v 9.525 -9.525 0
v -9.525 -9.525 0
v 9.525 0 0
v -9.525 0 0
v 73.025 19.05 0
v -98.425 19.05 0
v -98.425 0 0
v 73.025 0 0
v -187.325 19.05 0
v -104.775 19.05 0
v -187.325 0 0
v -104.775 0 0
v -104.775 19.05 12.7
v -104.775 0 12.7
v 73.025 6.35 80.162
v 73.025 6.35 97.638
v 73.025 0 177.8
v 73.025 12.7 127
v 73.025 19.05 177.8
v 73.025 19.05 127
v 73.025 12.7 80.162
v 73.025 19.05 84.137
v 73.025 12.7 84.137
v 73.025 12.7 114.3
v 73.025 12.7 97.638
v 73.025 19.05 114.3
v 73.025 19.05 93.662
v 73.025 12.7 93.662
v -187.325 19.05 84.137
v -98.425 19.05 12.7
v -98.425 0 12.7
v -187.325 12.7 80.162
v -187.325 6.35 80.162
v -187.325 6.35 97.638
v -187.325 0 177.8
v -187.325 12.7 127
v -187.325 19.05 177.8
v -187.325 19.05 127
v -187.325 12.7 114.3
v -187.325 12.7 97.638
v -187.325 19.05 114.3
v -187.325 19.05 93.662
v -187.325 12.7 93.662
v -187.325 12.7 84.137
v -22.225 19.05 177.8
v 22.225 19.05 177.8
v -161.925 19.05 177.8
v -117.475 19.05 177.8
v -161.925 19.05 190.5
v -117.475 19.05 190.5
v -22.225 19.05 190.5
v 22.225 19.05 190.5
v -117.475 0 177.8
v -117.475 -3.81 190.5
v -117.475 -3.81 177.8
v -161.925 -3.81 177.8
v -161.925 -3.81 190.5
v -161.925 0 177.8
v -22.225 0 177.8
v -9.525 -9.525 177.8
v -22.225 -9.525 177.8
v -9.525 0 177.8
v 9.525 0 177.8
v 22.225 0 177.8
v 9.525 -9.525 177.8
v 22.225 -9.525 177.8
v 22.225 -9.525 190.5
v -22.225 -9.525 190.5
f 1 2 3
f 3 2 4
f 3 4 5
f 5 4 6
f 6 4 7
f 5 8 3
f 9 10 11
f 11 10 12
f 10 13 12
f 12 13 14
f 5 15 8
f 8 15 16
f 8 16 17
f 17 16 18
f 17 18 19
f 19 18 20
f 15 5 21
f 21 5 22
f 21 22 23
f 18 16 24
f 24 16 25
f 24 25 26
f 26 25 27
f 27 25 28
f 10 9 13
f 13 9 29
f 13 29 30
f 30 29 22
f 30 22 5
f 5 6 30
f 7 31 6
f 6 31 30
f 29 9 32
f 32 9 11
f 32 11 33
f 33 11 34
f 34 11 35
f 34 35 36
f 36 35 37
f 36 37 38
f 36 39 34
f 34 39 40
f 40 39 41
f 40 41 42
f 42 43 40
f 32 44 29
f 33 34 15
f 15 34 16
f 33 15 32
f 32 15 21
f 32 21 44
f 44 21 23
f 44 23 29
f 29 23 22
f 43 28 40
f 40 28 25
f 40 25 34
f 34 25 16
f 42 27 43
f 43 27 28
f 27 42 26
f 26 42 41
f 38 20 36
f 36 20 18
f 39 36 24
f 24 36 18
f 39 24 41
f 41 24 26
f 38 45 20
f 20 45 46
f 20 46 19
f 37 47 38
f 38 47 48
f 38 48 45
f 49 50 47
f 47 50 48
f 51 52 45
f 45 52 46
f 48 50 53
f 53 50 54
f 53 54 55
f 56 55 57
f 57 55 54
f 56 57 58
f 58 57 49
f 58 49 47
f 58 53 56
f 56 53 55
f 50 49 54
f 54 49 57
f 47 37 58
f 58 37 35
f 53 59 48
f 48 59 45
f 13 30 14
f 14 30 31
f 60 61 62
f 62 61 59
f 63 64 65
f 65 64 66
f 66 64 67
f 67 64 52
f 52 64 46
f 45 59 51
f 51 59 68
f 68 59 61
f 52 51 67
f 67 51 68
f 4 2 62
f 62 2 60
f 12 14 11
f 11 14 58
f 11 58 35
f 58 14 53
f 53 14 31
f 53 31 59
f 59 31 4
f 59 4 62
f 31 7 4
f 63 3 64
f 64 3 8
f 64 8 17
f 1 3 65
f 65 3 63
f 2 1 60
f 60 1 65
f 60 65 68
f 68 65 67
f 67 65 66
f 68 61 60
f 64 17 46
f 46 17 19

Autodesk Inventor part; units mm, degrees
ref_plane "YZ Plane" through (0, 0, 0) normal (1, 0, 0) x (0, 1, 0)
ref_plane "XZ Plane" through (0, 0, 0) normal (0, 1, 0) x (-1, 0, 0)
sketch "Sketch3" plane through (0, 0, 0) normal (0, 0, 1) x (1, 0, 0)
  line L0 (0, -9.525) -> (9.525, -9.525)
  line L1 (9.525, -9.525) -> (9.525, 0)
  line L2 (0, 0) -> (0, -9.525) construction
  line L3 (0, 0) -> (9.525, 0) construction
  line L4 (0, -9.525) -> (-9.525, -9.525)
  line L5 (-9.525, -9.525) -> (-9.525, 0)
  line L6 (9.525, 0) -> (73.025, 0)
  line L7 (-187.325, 0) -> (-187.325, 19.05)
  line L8 (-187.325, 0) -> (-9.525, 0)
  line L9 (73.025, 0) -> (73.025, 19.05)
  line L10 (73.025, 19.05) -> (-187.325, 19.05)
  dimension "d0" = 9.525
  dimension "d1" = 9.525
  dimension "d6" = 63.5
  dimension "d8" = 19.05
  dimension "d9" = 177.8
extrude "Extrusion1" add sketch "Sketch3" along normal mid plane 355.6
sketch "Sketch4" plane through (0, 0, 177.8) normal (0, 0, 1) x (1, 0, 0)
  line L0 (-187.325, 19.05) -> (73.025, 19.05) construction
  line L1 (0, 19.05) -> (0, -9.525) construction
  line L2 (9.525, -9.525) -> (-9.525, -9.525) construction
  line L3 (0, -9.525) -> (-22.225, -9.525)
  line L4 (-22.225, -9.525) -> (-22.225, 19.05)
  line L5 (-22.225, 19.05) -> (0, 19.05)
  line L6 (187.325, 19.05) -> (-73.025, 19.05) construction
  line L7 (0, -9.525) -> (22.225, -9.525)
  line L8 (22.225, -9.525) -> (22.225, 19.05)
  line L9 (0, 19.05) -> (22.225, 19.05)
  point P0 (0, 0)
  dimension "d12" = 22.225
extrude "Extrusion2" add sketch "Sketch4" along normal blind 12.7
mirror "Mirror1" about plane through (0, 0, 0) normal (0, 0, 1) of "Extrusion2"
sketch "Sketch6" plane through (-187.325, 0, -177.8) normal (0, -1, 0) x (1, 0, 0)
  line L0 (82.55, 165.1) -> (88.9, 165.1)
  line L1 (88.9, 165.1) -> (88.9, 190.5)
  line L2 (88.9, 190.5) -> (82.55, 190.5)
  line L3 (82.55, 190.5) -> (82.55, 165.1)
  line L4 (82.55, 165.1) -> (88.9, 190.5) construction
  line L5 (88.9, 165.1) -> (82.55, 190.5) construction
  line L6 (177.8, 0) -> (177.8, 355.6) projected
  point P0 (187.325, 177.8)
  point P1 (85.725, 177.8)
  dimension "d16" = 12.7
  dimension "d18" = 6.35
  dimension "d19" = 88.9
extrude "Extrusion3" cut sketch "Sketch6" against normal through all
sketch "Sketch7" plane through (0, 0, 177.8) normal (0, 0, 1) x (1, 0, 0)
  line L0 (-187.325, 19.05) -> (-22.225, 19.05) projected
  line L1 (-161.925, 19.05) -> (-117.475, 19.05)
  line L2 (-117.475, 19.05) -> (-117.475, -3.81)
  line L3 (-117.475, -3.81) -> (-161.925, -3.81)
  line L4 (-161.925, -3.81) -> (-161.925, 19.05)
  line L5 (-187.325, 19.05) -> (-187.325, 0) projected
  point P0 (0, 0)
  dimension "d22" = 44.45
  dimension "d23" = 22.86
  dimension "d24" = 25.4
extrude "Extrusion4" add sketch "Sketch7" along normal blind 12.7
mirror "Mirror2" about plane through (0, 0, 0) normal (0, 0, 1) of "Extrusion4"
sketch "Sketch9" plane through (73.025, 0, 177.8) normal (1, 0, 0) x (0, 0, -1)
  line L0 (355.6, 19.05) -> (0, 19.05) projected
  line L1 (50.8, 19.05) -> (63.5, 19.05)
  line L2 (63.5, 19.05) -> (63.5, 12.7)
  line L3 (63.5, 12.7) -> (50.8, 12.7)
  line L4 (50.8, 12.7) -> (50.8, 19.05)
  line L5 (0, 0) -> (0, 19.05) projected
  point P0 (177.8, 0)
  dimension "d28" = 12.7
  dimension "d29" = 6.35
  dimension "d30" = 50.8
extrude "Extrusion5" cut sketch "Sketch9" against normal through all
mirror "Mirror3" about plane through (0, 0, 0) normal (0, 0, 1) of "Extrusion5"
sketch "Sketch12" plane through (73.025, 0, 177.8) normal (1, 0, 0) x (0, 0, -1)
  line L0 (355.6, 0) -> (0, 0) construction
  line L1 (88.9, 0) -> (88.9, 16.5009) construction
  line L2 (0, 0) -> (0, 19.05) projected
  line L3 (50.8, 19.05) -> (0, 19.05) projected
  line L4 (84.1375, 19.05) -> (84.1375, 12.7)
  line L5 (84.1375, 12.7) -> (80.1624, 12.7)
  line L6 (80.1624, 12.7) -> (80.1624, 6.35)
  line L7 (80.1624, 6.35) -> (88.9, 6.35)
  line L8 (93.6625, 19.05) -> (93.6625, 12.7)
  line L9 (93.6625, 12.7) -> (97.6376, 12.7)
  line L10 (97.6376, 12.7) -> (97.6376, 6.35)
  line L11 (97.6376, 6.35) -> (88.9, 6.35)
  line L12 (84.1375, 19.05) -> (93.6625, 19.05)
  point P0 (177.8, 0)
  dimension "d46" = 88.9
  dimension "d47" = 4.7625
  dimension "d48" = 6.35
  dimension "d49" = 6.35
  dimension "d50" = 8.7376
extrude "Extrusion8" cut sketch "Sketch12" against normal through all
mirror "Mirror4" about plane through (0, 0, 0) normal (0, 0, 1) of "Extrusion8"
split "Split2" plane through (0, 0, 0) removes the side toward (0, 0, -1)
ref_plane "Work Plane1" through (-60.325, 0, 177.8) normal (1, 0, 0) x (0, 0, -1)
properties part number "BandSawJigBottomSpiltA" material "LCP Plastic"
